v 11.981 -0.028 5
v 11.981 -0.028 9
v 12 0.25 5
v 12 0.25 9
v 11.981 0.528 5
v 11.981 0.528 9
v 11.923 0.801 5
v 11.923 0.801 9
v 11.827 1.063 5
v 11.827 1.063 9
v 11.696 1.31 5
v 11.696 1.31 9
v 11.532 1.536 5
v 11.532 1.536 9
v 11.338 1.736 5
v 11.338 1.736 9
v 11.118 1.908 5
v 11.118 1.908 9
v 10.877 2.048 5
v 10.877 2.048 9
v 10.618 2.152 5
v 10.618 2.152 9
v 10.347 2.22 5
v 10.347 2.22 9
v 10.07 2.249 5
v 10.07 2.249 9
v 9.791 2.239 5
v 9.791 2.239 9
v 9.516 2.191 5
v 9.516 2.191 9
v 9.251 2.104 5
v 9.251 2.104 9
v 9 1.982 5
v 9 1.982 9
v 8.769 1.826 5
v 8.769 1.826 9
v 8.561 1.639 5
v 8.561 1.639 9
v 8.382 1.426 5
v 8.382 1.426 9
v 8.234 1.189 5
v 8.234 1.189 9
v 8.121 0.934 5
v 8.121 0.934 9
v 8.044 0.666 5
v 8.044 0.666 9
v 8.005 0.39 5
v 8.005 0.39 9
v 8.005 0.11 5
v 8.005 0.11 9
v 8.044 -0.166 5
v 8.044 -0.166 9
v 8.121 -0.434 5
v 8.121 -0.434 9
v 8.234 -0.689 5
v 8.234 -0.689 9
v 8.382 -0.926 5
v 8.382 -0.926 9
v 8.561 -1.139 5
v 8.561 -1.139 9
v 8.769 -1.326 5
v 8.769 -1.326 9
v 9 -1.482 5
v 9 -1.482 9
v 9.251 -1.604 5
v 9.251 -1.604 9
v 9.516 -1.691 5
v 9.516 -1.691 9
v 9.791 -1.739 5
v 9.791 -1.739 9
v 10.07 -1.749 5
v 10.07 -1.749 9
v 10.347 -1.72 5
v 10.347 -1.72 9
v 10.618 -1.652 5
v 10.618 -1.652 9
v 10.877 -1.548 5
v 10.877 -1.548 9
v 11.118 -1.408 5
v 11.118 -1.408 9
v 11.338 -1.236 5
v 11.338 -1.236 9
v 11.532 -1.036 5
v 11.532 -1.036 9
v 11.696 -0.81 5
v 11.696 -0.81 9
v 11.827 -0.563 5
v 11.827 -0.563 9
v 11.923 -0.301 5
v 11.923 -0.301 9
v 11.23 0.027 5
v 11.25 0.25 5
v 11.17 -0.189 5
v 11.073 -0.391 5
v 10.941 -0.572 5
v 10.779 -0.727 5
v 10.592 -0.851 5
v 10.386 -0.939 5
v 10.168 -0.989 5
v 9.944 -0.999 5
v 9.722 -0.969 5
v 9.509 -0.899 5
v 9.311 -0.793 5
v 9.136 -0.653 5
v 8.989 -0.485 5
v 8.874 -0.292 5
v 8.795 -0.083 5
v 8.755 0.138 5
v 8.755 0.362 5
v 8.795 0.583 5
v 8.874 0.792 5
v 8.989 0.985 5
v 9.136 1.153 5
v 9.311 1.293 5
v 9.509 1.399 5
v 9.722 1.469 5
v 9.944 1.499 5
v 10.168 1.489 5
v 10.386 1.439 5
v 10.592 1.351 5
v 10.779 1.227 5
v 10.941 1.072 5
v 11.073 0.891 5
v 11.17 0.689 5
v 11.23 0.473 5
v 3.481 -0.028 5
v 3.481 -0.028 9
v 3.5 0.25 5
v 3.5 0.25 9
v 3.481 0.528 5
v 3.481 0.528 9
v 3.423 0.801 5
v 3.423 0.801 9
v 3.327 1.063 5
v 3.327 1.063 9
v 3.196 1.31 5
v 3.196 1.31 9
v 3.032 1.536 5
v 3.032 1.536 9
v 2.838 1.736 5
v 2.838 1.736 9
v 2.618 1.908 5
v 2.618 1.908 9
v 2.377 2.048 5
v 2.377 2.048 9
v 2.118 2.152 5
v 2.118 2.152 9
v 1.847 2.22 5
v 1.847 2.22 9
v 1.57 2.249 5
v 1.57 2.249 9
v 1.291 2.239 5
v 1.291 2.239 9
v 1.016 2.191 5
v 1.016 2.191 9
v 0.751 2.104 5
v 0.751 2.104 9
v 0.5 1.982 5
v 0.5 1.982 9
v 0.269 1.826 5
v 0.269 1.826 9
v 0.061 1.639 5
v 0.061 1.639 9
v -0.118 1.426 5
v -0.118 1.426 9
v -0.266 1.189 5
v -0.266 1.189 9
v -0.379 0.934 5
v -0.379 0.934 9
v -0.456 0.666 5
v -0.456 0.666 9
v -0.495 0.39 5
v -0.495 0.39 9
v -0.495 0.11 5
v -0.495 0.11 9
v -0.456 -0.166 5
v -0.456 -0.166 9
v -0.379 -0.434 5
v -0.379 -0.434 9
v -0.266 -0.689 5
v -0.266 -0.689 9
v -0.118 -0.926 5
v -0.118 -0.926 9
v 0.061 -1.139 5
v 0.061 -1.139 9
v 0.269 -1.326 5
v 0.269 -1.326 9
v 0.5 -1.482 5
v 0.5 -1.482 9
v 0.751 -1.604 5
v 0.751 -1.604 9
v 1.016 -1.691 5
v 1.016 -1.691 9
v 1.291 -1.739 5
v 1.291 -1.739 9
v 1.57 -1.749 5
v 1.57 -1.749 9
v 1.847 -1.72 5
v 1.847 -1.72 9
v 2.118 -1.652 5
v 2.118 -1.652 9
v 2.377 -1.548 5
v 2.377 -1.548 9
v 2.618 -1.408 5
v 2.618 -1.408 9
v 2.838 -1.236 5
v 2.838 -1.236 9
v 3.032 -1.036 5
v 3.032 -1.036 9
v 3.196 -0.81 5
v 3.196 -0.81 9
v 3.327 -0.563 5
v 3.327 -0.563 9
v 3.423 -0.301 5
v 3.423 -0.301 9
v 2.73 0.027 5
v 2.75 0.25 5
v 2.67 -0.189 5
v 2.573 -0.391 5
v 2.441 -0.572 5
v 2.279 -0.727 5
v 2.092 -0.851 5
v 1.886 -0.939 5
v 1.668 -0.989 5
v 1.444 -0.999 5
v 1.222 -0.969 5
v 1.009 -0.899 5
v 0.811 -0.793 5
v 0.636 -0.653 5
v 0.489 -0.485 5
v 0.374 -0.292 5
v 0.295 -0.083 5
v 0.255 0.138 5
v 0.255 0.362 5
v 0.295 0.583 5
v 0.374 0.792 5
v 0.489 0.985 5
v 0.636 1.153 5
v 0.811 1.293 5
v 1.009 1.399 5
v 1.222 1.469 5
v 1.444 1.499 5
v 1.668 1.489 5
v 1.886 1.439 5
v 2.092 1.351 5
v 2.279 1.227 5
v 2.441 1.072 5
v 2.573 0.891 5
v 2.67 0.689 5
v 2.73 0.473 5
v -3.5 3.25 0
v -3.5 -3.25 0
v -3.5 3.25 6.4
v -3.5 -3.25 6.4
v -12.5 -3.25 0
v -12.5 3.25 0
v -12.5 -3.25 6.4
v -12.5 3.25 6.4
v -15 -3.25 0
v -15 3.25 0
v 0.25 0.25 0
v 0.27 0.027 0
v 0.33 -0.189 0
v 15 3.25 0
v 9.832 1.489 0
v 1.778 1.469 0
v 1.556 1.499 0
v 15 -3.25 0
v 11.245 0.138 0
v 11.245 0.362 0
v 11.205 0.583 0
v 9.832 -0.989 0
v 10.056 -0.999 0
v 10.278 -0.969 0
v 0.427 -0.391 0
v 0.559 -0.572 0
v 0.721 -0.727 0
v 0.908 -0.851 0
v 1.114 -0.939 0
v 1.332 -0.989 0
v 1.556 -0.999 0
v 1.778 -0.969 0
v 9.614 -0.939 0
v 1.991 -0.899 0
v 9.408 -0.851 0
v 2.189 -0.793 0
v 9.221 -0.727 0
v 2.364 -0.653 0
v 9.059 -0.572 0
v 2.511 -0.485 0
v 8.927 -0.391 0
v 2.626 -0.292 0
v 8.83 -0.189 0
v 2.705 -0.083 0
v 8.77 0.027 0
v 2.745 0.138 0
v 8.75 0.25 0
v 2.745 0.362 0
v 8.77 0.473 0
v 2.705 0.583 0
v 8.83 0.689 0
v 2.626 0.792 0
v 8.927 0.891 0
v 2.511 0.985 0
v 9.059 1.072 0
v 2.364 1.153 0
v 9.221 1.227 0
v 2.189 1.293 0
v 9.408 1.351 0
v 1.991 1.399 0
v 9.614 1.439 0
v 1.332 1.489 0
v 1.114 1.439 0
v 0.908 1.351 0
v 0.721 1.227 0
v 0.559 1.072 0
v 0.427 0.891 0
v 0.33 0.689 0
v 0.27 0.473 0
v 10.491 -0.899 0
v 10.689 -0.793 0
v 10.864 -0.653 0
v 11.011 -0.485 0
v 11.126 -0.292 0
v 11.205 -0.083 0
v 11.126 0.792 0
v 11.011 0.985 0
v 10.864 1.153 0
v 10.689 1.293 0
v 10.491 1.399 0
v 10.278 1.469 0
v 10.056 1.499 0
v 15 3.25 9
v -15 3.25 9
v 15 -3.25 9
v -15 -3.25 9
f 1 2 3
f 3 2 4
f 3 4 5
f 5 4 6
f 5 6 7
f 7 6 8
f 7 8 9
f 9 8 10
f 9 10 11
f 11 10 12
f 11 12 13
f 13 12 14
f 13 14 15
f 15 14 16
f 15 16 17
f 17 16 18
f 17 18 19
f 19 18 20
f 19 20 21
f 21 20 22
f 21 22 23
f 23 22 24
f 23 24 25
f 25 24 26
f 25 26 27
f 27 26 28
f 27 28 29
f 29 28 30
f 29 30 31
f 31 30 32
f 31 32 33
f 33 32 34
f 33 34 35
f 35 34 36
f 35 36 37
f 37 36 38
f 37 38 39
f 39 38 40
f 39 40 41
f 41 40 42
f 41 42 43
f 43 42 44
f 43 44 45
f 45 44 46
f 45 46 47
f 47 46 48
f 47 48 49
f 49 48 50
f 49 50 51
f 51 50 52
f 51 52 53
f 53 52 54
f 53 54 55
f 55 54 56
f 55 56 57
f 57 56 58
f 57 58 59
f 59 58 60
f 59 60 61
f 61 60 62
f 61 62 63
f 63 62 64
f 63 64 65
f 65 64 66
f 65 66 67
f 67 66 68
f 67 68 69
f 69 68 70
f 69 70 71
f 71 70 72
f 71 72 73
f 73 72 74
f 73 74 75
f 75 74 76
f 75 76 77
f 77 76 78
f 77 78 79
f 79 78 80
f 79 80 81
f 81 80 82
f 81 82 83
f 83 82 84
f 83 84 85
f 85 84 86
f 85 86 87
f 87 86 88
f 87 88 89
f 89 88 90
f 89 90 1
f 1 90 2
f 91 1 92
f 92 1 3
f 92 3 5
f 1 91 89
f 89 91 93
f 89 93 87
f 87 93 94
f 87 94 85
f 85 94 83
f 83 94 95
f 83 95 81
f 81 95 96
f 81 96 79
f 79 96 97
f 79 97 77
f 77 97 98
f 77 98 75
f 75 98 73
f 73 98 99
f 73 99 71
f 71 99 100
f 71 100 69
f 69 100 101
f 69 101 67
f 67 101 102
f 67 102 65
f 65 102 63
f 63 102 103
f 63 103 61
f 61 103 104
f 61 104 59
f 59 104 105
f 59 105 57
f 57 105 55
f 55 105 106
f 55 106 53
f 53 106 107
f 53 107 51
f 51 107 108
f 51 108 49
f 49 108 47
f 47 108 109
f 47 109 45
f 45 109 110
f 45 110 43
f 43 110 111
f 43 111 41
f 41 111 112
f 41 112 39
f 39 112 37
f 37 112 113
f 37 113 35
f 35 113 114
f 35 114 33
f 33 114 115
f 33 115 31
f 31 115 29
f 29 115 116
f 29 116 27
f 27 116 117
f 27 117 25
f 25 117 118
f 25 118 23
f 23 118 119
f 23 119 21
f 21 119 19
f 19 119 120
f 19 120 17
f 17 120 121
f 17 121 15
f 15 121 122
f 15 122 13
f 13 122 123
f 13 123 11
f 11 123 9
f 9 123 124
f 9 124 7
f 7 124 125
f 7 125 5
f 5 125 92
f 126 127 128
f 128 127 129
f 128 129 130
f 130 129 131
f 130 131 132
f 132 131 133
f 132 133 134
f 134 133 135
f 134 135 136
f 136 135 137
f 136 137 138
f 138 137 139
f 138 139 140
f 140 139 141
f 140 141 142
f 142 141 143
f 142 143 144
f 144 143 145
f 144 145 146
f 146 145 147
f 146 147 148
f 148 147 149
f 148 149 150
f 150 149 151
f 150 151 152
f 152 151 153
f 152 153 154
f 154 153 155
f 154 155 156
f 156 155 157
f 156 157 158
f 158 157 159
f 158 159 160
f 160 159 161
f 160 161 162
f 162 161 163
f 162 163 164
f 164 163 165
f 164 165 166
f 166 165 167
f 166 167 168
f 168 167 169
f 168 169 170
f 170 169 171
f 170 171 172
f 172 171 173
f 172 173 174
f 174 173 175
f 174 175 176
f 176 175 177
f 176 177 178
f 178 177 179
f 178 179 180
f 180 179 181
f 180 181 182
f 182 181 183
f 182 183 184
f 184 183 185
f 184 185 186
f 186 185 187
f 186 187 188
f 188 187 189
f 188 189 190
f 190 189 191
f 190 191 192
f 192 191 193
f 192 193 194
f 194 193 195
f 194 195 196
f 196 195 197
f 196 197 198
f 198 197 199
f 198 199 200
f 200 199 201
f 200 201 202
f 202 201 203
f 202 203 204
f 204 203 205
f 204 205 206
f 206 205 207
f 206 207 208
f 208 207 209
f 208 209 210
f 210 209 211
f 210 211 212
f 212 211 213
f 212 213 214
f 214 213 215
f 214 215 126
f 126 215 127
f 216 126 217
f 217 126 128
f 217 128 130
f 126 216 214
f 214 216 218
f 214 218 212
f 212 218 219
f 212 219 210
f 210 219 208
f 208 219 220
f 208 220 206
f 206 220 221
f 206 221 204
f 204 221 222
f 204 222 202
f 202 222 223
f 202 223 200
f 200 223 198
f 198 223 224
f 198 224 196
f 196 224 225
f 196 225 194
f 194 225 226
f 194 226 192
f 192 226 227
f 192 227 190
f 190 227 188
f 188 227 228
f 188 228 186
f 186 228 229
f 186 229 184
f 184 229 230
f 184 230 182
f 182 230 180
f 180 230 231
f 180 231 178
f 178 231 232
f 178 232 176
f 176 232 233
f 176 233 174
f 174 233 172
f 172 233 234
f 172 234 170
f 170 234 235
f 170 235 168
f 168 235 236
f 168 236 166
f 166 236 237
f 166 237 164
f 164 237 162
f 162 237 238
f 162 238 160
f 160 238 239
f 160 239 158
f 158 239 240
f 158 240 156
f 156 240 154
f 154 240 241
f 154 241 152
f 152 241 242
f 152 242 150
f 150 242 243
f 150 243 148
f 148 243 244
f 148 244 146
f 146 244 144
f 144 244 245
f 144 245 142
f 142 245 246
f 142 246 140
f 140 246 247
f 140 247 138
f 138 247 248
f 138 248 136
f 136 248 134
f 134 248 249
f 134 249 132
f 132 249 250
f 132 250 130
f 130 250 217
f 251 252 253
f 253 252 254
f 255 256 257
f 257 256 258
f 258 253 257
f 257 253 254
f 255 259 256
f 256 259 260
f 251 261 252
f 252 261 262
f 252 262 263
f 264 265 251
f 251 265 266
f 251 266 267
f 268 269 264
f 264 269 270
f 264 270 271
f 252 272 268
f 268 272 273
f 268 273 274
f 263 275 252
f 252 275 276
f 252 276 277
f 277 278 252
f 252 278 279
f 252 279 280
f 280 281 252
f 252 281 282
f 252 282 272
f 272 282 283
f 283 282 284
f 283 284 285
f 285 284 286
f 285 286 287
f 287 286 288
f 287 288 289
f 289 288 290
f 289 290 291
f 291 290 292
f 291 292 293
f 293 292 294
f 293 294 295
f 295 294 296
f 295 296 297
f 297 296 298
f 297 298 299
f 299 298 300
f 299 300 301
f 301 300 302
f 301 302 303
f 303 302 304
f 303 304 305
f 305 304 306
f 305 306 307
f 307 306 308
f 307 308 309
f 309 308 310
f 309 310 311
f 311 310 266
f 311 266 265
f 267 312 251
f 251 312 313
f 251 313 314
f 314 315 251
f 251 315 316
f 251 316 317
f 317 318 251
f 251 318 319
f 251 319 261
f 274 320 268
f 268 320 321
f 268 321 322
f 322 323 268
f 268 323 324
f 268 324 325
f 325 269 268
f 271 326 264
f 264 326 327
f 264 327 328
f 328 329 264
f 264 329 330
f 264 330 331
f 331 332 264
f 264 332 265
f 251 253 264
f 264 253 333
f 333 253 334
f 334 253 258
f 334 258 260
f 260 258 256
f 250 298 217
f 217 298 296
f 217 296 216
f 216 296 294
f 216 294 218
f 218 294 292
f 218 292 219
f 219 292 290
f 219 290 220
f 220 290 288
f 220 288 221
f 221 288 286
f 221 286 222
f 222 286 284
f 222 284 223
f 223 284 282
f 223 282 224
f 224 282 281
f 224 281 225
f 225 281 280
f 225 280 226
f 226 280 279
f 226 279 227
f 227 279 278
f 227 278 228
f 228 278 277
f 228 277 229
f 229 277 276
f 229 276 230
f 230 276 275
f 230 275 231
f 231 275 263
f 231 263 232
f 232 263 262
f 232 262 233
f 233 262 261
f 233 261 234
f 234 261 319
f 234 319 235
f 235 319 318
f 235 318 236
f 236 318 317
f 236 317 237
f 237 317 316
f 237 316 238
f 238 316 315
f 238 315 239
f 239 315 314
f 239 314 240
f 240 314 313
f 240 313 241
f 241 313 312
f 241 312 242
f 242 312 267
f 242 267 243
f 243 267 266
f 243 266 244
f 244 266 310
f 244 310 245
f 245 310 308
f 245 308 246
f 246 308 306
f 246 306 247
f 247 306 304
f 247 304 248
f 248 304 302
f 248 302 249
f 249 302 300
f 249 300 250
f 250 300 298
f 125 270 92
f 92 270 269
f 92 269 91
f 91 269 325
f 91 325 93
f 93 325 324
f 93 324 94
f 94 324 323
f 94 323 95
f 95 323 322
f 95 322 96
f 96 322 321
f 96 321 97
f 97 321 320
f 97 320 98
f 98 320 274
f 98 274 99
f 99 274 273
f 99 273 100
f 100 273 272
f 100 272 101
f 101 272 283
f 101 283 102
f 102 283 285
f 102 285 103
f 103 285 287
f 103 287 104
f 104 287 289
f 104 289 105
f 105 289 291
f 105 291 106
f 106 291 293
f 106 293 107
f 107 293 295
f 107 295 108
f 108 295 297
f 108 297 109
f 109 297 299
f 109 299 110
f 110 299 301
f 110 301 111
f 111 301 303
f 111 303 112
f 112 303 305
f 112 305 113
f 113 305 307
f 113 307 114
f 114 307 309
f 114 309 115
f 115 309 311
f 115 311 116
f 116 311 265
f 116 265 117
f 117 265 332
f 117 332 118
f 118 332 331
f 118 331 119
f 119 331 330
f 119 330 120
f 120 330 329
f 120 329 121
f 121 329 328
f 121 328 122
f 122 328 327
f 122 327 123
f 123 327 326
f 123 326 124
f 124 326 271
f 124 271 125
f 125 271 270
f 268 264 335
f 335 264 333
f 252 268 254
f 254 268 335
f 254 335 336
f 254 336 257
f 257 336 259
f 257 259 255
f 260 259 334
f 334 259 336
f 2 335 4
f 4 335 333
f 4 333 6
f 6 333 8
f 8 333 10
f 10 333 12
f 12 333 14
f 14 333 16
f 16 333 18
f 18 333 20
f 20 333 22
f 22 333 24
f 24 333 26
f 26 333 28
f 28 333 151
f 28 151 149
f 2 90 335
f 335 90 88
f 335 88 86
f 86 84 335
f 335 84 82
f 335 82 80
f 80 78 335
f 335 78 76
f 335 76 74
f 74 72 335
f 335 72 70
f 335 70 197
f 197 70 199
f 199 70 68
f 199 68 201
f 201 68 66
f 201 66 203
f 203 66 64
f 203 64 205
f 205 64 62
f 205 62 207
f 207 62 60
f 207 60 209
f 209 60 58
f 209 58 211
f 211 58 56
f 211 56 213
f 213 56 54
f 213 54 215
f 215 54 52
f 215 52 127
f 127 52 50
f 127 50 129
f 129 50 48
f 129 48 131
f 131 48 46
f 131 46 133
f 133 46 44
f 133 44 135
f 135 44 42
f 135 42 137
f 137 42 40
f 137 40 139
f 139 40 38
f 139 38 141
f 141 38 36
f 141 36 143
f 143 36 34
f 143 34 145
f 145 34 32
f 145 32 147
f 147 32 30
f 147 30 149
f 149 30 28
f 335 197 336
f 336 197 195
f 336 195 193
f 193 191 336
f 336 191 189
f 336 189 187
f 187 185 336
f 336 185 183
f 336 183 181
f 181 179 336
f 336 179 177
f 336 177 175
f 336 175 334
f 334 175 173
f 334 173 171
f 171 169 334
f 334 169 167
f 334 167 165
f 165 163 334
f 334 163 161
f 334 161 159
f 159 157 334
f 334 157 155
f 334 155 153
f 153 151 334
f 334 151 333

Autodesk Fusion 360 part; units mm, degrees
sketch "Skizze1" plane through (0, 0, 0) normal (0, 0, 1) x (1, 0, 0)
  line L0 (15, -3.25) -> (-15, -3.25)
  line L1 (-15, -3.25) -> (-15, 3.25)
  line L2 (-15, 3.25) -> (15, 3.25)
  line L3 (15, 3.25) -> (15, -3.25)
  line L4 (15, -3.25) -> (-15, 3.25) construction
  line L5 (-15, -3.25) -> (15, 3.25) construction
  line L6 (-21.7851, 0.25) -> (21, 0.25) construction
  line L7 (10, 7.6042) -> (10, -9) construction
  line L8 (1.5, 8) -> (1.5, -9) construction
  line L9 (-3.5, 3.25) -> (-3.5, -3.25)
  line L10 (-12.5, 3.25) -> (-12.5, -3.25)
  circle A0 centre (10, 0.25) radius 1.25
  circle A1 centre (1.5, 0.25) radius 1.25
  dimension "d1" = 6.5
  dimension "d2" = 30
  dimension "d3" = 3
  dimension "d4" = 5
  dimension "d5" = 8.5
  dimension "d6" = 9
  dimension "d7" = 2.5
  dimension "d8" = 2.5
  dimension "d9" = 2.5
extrude "Extrusion1" add sketch "Skizze1" along normal blind 9
extrude "Extrusion2" cut sketch "Skizze1" along normal blind 6.4 contours L0 L2 L9 L10
sketch "Skizze2" plane through (0, 0, 9) normal (0, 0, 1) x (-1, 0, 0)
  circle A0 centre (-10, -0.25) radius 1.25
  circle A1 centre (-1.5, -0.25) radius 1.25
  line L0 (-15, -3.25) -> (15, -3.25)
  line L1 (15, -3.25) -> (15, 3.25)
  line L2 (15, 3.25) -> (-15, 3.25)
  line L3 (-15, 3.25) -> (-15, -3.25)
  line L4 (15.9329, -0.25) -> (-19.3468, -0.25) construction
  line L5 (-10, -6.1266) -> (-10, 7.3493) construction
  line L6 (-1.5, 6.35) -> (-1.5, -4.2794) construction
  circle A2 centre (-1.5, -0.25) radius 2
  circle A3 centre (-10, -0.25) radius 2
  dimension "d14" = 0.25
  dimension "d15" = 10
  dimension "d16" = 8.5
  dimension "d17" = 4
  dimension "d18" = 4
extrude "Extrusion3" cut sketch "Skizze2" against normal blind 4 contours A2
extrude "Extrusion4" cut sketch "Skizze2" against normal blind 4 contours A3
